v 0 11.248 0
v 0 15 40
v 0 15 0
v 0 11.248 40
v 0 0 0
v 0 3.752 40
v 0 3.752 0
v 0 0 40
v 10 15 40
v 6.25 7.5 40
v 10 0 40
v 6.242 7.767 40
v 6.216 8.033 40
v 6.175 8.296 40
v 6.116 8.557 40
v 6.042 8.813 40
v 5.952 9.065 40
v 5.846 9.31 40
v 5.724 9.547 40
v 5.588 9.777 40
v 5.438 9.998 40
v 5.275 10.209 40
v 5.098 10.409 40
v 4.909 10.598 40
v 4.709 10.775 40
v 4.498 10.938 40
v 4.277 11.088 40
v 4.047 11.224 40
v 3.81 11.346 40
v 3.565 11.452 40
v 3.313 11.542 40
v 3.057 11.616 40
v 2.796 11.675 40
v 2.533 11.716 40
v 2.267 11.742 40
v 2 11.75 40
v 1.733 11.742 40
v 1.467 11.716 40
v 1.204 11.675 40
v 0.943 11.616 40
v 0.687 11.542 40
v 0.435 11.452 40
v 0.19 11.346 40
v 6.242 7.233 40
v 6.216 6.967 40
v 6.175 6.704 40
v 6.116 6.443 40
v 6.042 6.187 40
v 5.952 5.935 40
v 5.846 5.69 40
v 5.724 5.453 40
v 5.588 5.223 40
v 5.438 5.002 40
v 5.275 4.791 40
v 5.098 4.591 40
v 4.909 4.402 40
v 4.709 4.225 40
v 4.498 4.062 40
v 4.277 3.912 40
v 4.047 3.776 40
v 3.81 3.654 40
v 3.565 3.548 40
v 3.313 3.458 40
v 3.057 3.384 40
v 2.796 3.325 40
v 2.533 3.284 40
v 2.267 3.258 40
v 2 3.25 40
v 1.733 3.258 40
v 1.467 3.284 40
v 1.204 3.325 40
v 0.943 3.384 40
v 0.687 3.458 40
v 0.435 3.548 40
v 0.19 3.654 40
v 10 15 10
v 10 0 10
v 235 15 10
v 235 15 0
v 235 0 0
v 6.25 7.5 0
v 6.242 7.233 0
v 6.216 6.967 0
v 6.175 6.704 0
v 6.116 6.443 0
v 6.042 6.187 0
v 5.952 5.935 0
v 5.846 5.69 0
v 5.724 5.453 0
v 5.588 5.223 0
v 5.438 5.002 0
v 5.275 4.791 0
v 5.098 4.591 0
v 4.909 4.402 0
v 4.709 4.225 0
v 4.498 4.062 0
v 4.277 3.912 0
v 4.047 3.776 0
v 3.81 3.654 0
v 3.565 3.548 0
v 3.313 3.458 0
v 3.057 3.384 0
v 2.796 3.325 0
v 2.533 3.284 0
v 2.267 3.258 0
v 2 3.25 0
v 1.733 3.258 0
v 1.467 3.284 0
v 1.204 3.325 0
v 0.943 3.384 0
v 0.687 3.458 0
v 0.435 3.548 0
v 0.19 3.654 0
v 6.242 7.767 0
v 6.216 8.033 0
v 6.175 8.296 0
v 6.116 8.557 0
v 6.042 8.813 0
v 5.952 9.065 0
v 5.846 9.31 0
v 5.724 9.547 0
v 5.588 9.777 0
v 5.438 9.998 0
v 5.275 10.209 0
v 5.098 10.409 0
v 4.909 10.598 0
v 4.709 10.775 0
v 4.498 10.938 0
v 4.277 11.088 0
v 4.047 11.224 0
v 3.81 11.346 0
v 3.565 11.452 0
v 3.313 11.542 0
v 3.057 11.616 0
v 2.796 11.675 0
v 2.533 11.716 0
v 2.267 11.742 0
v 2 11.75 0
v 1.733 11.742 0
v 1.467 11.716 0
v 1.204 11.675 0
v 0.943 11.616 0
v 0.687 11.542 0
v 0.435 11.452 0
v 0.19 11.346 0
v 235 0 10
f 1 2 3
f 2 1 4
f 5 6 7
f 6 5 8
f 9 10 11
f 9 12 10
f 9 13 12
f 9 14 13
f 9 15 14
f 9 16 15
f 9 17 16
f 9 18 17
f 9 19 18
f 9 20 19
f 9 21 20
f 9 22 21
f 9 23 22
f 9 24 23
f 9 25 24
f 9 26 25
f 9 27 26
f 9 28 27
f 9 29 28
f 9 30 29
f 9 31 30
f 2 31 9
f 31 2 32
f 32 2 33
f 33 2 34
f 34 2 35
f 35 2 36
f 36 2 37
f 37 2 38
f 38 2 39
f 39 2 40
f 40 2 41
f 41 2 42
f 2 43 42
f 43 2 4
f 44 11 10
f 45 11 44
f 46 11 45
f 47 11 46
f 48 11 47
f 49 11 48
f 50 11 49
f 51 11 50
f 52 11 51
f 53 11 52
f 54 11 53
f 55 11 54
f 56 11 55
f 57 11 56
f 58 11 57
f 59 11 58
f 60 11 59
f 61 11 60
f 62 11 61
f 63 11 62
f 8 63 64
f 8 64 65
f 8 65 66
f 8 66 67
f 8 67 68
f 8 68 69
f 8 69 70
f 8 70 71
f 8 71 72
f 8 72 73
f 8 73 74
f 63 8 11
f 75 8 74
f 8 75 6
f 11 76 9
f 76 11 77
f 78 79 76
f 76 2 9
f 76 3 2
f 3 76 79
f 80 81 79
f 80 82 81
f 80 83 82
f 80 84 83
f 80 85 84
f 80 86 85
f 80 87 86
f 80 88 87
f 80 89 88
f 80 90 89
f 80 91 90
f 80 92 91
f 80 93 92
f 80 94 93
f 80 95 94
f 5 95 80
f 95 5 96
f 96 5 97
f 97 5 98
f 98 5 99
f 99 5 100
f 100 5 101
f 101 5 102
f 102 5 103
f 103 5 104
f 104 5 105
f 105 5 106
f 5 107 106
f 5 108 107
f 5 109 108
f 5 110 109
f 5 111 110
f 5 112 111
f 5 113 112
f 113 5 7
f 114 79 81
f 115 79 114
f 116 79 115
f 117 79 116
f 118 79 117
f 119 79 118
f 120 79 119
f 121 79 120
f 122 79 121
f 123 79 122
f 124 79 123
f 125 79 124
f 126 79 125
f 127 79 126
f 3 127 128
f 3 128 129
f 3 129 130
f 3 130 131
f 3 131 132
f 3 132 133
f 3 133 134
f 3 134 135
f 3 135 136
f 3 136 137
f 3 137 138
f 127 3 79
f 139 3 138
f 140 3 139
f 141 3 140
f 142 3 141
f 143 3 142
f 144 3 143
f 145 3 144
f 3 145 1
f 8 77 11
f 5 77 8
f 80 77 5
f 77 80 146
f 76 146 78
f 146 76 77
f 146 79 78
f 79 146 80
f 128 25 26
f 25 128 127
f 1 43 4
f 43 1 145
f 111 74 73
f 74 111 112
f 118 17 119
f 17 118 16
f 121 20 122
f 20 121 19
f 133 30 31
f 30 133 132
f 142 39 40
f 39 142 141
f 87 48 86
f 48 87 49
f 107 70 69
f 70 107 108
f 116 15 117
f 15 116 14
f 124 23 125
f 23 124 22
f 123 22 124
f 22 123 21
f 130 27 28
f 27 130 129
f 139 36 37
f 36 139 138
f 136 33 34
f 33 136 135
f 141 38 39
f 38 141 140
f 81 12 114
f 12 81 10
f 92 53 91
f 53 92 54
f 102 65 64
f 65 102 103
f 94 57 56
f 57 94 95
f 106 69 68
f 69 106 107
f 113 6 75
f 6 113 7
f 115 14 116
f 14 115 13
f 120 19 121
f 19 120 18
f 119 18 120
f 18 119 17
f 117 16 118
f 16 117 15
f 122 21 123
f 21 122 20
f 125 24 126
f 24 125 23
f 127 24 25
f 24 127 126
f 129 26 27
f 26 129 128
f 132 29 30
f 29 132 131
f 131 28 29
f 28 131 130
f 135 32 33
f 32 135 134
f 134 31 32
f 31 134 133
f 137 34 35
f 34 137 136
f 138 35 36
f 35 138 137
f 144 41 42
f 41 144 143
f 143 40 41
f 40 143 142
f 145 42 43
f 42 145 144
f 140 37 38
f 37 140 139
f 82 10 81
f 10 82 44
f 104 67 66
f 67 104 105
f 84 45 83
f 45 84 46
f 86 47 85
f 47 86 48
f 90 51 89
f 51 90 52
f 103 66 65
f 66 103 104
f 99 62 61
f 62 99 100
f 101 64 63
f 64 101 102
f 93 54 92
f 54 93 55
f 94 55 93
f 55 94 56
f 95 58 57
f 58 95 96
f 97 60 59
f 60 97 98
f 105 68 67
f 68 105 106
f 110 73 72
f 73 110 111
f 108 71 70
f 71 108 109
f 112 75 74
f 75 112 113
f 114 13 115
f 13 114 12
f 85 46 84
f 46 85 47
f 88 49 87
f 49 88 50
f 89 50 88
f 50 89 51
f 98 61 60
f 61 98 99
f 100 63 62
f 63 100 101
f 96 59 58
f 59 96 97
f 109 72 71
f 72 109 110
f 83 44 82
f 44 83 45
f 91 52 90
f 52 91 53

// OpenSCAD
difference() {
union() {
cube([10,15,40]);
cube([235,15,10]);
}
    translate([2,15/2,0])
cylinder(r=8.5/2,h=100,$fn=100,center=true);
}
